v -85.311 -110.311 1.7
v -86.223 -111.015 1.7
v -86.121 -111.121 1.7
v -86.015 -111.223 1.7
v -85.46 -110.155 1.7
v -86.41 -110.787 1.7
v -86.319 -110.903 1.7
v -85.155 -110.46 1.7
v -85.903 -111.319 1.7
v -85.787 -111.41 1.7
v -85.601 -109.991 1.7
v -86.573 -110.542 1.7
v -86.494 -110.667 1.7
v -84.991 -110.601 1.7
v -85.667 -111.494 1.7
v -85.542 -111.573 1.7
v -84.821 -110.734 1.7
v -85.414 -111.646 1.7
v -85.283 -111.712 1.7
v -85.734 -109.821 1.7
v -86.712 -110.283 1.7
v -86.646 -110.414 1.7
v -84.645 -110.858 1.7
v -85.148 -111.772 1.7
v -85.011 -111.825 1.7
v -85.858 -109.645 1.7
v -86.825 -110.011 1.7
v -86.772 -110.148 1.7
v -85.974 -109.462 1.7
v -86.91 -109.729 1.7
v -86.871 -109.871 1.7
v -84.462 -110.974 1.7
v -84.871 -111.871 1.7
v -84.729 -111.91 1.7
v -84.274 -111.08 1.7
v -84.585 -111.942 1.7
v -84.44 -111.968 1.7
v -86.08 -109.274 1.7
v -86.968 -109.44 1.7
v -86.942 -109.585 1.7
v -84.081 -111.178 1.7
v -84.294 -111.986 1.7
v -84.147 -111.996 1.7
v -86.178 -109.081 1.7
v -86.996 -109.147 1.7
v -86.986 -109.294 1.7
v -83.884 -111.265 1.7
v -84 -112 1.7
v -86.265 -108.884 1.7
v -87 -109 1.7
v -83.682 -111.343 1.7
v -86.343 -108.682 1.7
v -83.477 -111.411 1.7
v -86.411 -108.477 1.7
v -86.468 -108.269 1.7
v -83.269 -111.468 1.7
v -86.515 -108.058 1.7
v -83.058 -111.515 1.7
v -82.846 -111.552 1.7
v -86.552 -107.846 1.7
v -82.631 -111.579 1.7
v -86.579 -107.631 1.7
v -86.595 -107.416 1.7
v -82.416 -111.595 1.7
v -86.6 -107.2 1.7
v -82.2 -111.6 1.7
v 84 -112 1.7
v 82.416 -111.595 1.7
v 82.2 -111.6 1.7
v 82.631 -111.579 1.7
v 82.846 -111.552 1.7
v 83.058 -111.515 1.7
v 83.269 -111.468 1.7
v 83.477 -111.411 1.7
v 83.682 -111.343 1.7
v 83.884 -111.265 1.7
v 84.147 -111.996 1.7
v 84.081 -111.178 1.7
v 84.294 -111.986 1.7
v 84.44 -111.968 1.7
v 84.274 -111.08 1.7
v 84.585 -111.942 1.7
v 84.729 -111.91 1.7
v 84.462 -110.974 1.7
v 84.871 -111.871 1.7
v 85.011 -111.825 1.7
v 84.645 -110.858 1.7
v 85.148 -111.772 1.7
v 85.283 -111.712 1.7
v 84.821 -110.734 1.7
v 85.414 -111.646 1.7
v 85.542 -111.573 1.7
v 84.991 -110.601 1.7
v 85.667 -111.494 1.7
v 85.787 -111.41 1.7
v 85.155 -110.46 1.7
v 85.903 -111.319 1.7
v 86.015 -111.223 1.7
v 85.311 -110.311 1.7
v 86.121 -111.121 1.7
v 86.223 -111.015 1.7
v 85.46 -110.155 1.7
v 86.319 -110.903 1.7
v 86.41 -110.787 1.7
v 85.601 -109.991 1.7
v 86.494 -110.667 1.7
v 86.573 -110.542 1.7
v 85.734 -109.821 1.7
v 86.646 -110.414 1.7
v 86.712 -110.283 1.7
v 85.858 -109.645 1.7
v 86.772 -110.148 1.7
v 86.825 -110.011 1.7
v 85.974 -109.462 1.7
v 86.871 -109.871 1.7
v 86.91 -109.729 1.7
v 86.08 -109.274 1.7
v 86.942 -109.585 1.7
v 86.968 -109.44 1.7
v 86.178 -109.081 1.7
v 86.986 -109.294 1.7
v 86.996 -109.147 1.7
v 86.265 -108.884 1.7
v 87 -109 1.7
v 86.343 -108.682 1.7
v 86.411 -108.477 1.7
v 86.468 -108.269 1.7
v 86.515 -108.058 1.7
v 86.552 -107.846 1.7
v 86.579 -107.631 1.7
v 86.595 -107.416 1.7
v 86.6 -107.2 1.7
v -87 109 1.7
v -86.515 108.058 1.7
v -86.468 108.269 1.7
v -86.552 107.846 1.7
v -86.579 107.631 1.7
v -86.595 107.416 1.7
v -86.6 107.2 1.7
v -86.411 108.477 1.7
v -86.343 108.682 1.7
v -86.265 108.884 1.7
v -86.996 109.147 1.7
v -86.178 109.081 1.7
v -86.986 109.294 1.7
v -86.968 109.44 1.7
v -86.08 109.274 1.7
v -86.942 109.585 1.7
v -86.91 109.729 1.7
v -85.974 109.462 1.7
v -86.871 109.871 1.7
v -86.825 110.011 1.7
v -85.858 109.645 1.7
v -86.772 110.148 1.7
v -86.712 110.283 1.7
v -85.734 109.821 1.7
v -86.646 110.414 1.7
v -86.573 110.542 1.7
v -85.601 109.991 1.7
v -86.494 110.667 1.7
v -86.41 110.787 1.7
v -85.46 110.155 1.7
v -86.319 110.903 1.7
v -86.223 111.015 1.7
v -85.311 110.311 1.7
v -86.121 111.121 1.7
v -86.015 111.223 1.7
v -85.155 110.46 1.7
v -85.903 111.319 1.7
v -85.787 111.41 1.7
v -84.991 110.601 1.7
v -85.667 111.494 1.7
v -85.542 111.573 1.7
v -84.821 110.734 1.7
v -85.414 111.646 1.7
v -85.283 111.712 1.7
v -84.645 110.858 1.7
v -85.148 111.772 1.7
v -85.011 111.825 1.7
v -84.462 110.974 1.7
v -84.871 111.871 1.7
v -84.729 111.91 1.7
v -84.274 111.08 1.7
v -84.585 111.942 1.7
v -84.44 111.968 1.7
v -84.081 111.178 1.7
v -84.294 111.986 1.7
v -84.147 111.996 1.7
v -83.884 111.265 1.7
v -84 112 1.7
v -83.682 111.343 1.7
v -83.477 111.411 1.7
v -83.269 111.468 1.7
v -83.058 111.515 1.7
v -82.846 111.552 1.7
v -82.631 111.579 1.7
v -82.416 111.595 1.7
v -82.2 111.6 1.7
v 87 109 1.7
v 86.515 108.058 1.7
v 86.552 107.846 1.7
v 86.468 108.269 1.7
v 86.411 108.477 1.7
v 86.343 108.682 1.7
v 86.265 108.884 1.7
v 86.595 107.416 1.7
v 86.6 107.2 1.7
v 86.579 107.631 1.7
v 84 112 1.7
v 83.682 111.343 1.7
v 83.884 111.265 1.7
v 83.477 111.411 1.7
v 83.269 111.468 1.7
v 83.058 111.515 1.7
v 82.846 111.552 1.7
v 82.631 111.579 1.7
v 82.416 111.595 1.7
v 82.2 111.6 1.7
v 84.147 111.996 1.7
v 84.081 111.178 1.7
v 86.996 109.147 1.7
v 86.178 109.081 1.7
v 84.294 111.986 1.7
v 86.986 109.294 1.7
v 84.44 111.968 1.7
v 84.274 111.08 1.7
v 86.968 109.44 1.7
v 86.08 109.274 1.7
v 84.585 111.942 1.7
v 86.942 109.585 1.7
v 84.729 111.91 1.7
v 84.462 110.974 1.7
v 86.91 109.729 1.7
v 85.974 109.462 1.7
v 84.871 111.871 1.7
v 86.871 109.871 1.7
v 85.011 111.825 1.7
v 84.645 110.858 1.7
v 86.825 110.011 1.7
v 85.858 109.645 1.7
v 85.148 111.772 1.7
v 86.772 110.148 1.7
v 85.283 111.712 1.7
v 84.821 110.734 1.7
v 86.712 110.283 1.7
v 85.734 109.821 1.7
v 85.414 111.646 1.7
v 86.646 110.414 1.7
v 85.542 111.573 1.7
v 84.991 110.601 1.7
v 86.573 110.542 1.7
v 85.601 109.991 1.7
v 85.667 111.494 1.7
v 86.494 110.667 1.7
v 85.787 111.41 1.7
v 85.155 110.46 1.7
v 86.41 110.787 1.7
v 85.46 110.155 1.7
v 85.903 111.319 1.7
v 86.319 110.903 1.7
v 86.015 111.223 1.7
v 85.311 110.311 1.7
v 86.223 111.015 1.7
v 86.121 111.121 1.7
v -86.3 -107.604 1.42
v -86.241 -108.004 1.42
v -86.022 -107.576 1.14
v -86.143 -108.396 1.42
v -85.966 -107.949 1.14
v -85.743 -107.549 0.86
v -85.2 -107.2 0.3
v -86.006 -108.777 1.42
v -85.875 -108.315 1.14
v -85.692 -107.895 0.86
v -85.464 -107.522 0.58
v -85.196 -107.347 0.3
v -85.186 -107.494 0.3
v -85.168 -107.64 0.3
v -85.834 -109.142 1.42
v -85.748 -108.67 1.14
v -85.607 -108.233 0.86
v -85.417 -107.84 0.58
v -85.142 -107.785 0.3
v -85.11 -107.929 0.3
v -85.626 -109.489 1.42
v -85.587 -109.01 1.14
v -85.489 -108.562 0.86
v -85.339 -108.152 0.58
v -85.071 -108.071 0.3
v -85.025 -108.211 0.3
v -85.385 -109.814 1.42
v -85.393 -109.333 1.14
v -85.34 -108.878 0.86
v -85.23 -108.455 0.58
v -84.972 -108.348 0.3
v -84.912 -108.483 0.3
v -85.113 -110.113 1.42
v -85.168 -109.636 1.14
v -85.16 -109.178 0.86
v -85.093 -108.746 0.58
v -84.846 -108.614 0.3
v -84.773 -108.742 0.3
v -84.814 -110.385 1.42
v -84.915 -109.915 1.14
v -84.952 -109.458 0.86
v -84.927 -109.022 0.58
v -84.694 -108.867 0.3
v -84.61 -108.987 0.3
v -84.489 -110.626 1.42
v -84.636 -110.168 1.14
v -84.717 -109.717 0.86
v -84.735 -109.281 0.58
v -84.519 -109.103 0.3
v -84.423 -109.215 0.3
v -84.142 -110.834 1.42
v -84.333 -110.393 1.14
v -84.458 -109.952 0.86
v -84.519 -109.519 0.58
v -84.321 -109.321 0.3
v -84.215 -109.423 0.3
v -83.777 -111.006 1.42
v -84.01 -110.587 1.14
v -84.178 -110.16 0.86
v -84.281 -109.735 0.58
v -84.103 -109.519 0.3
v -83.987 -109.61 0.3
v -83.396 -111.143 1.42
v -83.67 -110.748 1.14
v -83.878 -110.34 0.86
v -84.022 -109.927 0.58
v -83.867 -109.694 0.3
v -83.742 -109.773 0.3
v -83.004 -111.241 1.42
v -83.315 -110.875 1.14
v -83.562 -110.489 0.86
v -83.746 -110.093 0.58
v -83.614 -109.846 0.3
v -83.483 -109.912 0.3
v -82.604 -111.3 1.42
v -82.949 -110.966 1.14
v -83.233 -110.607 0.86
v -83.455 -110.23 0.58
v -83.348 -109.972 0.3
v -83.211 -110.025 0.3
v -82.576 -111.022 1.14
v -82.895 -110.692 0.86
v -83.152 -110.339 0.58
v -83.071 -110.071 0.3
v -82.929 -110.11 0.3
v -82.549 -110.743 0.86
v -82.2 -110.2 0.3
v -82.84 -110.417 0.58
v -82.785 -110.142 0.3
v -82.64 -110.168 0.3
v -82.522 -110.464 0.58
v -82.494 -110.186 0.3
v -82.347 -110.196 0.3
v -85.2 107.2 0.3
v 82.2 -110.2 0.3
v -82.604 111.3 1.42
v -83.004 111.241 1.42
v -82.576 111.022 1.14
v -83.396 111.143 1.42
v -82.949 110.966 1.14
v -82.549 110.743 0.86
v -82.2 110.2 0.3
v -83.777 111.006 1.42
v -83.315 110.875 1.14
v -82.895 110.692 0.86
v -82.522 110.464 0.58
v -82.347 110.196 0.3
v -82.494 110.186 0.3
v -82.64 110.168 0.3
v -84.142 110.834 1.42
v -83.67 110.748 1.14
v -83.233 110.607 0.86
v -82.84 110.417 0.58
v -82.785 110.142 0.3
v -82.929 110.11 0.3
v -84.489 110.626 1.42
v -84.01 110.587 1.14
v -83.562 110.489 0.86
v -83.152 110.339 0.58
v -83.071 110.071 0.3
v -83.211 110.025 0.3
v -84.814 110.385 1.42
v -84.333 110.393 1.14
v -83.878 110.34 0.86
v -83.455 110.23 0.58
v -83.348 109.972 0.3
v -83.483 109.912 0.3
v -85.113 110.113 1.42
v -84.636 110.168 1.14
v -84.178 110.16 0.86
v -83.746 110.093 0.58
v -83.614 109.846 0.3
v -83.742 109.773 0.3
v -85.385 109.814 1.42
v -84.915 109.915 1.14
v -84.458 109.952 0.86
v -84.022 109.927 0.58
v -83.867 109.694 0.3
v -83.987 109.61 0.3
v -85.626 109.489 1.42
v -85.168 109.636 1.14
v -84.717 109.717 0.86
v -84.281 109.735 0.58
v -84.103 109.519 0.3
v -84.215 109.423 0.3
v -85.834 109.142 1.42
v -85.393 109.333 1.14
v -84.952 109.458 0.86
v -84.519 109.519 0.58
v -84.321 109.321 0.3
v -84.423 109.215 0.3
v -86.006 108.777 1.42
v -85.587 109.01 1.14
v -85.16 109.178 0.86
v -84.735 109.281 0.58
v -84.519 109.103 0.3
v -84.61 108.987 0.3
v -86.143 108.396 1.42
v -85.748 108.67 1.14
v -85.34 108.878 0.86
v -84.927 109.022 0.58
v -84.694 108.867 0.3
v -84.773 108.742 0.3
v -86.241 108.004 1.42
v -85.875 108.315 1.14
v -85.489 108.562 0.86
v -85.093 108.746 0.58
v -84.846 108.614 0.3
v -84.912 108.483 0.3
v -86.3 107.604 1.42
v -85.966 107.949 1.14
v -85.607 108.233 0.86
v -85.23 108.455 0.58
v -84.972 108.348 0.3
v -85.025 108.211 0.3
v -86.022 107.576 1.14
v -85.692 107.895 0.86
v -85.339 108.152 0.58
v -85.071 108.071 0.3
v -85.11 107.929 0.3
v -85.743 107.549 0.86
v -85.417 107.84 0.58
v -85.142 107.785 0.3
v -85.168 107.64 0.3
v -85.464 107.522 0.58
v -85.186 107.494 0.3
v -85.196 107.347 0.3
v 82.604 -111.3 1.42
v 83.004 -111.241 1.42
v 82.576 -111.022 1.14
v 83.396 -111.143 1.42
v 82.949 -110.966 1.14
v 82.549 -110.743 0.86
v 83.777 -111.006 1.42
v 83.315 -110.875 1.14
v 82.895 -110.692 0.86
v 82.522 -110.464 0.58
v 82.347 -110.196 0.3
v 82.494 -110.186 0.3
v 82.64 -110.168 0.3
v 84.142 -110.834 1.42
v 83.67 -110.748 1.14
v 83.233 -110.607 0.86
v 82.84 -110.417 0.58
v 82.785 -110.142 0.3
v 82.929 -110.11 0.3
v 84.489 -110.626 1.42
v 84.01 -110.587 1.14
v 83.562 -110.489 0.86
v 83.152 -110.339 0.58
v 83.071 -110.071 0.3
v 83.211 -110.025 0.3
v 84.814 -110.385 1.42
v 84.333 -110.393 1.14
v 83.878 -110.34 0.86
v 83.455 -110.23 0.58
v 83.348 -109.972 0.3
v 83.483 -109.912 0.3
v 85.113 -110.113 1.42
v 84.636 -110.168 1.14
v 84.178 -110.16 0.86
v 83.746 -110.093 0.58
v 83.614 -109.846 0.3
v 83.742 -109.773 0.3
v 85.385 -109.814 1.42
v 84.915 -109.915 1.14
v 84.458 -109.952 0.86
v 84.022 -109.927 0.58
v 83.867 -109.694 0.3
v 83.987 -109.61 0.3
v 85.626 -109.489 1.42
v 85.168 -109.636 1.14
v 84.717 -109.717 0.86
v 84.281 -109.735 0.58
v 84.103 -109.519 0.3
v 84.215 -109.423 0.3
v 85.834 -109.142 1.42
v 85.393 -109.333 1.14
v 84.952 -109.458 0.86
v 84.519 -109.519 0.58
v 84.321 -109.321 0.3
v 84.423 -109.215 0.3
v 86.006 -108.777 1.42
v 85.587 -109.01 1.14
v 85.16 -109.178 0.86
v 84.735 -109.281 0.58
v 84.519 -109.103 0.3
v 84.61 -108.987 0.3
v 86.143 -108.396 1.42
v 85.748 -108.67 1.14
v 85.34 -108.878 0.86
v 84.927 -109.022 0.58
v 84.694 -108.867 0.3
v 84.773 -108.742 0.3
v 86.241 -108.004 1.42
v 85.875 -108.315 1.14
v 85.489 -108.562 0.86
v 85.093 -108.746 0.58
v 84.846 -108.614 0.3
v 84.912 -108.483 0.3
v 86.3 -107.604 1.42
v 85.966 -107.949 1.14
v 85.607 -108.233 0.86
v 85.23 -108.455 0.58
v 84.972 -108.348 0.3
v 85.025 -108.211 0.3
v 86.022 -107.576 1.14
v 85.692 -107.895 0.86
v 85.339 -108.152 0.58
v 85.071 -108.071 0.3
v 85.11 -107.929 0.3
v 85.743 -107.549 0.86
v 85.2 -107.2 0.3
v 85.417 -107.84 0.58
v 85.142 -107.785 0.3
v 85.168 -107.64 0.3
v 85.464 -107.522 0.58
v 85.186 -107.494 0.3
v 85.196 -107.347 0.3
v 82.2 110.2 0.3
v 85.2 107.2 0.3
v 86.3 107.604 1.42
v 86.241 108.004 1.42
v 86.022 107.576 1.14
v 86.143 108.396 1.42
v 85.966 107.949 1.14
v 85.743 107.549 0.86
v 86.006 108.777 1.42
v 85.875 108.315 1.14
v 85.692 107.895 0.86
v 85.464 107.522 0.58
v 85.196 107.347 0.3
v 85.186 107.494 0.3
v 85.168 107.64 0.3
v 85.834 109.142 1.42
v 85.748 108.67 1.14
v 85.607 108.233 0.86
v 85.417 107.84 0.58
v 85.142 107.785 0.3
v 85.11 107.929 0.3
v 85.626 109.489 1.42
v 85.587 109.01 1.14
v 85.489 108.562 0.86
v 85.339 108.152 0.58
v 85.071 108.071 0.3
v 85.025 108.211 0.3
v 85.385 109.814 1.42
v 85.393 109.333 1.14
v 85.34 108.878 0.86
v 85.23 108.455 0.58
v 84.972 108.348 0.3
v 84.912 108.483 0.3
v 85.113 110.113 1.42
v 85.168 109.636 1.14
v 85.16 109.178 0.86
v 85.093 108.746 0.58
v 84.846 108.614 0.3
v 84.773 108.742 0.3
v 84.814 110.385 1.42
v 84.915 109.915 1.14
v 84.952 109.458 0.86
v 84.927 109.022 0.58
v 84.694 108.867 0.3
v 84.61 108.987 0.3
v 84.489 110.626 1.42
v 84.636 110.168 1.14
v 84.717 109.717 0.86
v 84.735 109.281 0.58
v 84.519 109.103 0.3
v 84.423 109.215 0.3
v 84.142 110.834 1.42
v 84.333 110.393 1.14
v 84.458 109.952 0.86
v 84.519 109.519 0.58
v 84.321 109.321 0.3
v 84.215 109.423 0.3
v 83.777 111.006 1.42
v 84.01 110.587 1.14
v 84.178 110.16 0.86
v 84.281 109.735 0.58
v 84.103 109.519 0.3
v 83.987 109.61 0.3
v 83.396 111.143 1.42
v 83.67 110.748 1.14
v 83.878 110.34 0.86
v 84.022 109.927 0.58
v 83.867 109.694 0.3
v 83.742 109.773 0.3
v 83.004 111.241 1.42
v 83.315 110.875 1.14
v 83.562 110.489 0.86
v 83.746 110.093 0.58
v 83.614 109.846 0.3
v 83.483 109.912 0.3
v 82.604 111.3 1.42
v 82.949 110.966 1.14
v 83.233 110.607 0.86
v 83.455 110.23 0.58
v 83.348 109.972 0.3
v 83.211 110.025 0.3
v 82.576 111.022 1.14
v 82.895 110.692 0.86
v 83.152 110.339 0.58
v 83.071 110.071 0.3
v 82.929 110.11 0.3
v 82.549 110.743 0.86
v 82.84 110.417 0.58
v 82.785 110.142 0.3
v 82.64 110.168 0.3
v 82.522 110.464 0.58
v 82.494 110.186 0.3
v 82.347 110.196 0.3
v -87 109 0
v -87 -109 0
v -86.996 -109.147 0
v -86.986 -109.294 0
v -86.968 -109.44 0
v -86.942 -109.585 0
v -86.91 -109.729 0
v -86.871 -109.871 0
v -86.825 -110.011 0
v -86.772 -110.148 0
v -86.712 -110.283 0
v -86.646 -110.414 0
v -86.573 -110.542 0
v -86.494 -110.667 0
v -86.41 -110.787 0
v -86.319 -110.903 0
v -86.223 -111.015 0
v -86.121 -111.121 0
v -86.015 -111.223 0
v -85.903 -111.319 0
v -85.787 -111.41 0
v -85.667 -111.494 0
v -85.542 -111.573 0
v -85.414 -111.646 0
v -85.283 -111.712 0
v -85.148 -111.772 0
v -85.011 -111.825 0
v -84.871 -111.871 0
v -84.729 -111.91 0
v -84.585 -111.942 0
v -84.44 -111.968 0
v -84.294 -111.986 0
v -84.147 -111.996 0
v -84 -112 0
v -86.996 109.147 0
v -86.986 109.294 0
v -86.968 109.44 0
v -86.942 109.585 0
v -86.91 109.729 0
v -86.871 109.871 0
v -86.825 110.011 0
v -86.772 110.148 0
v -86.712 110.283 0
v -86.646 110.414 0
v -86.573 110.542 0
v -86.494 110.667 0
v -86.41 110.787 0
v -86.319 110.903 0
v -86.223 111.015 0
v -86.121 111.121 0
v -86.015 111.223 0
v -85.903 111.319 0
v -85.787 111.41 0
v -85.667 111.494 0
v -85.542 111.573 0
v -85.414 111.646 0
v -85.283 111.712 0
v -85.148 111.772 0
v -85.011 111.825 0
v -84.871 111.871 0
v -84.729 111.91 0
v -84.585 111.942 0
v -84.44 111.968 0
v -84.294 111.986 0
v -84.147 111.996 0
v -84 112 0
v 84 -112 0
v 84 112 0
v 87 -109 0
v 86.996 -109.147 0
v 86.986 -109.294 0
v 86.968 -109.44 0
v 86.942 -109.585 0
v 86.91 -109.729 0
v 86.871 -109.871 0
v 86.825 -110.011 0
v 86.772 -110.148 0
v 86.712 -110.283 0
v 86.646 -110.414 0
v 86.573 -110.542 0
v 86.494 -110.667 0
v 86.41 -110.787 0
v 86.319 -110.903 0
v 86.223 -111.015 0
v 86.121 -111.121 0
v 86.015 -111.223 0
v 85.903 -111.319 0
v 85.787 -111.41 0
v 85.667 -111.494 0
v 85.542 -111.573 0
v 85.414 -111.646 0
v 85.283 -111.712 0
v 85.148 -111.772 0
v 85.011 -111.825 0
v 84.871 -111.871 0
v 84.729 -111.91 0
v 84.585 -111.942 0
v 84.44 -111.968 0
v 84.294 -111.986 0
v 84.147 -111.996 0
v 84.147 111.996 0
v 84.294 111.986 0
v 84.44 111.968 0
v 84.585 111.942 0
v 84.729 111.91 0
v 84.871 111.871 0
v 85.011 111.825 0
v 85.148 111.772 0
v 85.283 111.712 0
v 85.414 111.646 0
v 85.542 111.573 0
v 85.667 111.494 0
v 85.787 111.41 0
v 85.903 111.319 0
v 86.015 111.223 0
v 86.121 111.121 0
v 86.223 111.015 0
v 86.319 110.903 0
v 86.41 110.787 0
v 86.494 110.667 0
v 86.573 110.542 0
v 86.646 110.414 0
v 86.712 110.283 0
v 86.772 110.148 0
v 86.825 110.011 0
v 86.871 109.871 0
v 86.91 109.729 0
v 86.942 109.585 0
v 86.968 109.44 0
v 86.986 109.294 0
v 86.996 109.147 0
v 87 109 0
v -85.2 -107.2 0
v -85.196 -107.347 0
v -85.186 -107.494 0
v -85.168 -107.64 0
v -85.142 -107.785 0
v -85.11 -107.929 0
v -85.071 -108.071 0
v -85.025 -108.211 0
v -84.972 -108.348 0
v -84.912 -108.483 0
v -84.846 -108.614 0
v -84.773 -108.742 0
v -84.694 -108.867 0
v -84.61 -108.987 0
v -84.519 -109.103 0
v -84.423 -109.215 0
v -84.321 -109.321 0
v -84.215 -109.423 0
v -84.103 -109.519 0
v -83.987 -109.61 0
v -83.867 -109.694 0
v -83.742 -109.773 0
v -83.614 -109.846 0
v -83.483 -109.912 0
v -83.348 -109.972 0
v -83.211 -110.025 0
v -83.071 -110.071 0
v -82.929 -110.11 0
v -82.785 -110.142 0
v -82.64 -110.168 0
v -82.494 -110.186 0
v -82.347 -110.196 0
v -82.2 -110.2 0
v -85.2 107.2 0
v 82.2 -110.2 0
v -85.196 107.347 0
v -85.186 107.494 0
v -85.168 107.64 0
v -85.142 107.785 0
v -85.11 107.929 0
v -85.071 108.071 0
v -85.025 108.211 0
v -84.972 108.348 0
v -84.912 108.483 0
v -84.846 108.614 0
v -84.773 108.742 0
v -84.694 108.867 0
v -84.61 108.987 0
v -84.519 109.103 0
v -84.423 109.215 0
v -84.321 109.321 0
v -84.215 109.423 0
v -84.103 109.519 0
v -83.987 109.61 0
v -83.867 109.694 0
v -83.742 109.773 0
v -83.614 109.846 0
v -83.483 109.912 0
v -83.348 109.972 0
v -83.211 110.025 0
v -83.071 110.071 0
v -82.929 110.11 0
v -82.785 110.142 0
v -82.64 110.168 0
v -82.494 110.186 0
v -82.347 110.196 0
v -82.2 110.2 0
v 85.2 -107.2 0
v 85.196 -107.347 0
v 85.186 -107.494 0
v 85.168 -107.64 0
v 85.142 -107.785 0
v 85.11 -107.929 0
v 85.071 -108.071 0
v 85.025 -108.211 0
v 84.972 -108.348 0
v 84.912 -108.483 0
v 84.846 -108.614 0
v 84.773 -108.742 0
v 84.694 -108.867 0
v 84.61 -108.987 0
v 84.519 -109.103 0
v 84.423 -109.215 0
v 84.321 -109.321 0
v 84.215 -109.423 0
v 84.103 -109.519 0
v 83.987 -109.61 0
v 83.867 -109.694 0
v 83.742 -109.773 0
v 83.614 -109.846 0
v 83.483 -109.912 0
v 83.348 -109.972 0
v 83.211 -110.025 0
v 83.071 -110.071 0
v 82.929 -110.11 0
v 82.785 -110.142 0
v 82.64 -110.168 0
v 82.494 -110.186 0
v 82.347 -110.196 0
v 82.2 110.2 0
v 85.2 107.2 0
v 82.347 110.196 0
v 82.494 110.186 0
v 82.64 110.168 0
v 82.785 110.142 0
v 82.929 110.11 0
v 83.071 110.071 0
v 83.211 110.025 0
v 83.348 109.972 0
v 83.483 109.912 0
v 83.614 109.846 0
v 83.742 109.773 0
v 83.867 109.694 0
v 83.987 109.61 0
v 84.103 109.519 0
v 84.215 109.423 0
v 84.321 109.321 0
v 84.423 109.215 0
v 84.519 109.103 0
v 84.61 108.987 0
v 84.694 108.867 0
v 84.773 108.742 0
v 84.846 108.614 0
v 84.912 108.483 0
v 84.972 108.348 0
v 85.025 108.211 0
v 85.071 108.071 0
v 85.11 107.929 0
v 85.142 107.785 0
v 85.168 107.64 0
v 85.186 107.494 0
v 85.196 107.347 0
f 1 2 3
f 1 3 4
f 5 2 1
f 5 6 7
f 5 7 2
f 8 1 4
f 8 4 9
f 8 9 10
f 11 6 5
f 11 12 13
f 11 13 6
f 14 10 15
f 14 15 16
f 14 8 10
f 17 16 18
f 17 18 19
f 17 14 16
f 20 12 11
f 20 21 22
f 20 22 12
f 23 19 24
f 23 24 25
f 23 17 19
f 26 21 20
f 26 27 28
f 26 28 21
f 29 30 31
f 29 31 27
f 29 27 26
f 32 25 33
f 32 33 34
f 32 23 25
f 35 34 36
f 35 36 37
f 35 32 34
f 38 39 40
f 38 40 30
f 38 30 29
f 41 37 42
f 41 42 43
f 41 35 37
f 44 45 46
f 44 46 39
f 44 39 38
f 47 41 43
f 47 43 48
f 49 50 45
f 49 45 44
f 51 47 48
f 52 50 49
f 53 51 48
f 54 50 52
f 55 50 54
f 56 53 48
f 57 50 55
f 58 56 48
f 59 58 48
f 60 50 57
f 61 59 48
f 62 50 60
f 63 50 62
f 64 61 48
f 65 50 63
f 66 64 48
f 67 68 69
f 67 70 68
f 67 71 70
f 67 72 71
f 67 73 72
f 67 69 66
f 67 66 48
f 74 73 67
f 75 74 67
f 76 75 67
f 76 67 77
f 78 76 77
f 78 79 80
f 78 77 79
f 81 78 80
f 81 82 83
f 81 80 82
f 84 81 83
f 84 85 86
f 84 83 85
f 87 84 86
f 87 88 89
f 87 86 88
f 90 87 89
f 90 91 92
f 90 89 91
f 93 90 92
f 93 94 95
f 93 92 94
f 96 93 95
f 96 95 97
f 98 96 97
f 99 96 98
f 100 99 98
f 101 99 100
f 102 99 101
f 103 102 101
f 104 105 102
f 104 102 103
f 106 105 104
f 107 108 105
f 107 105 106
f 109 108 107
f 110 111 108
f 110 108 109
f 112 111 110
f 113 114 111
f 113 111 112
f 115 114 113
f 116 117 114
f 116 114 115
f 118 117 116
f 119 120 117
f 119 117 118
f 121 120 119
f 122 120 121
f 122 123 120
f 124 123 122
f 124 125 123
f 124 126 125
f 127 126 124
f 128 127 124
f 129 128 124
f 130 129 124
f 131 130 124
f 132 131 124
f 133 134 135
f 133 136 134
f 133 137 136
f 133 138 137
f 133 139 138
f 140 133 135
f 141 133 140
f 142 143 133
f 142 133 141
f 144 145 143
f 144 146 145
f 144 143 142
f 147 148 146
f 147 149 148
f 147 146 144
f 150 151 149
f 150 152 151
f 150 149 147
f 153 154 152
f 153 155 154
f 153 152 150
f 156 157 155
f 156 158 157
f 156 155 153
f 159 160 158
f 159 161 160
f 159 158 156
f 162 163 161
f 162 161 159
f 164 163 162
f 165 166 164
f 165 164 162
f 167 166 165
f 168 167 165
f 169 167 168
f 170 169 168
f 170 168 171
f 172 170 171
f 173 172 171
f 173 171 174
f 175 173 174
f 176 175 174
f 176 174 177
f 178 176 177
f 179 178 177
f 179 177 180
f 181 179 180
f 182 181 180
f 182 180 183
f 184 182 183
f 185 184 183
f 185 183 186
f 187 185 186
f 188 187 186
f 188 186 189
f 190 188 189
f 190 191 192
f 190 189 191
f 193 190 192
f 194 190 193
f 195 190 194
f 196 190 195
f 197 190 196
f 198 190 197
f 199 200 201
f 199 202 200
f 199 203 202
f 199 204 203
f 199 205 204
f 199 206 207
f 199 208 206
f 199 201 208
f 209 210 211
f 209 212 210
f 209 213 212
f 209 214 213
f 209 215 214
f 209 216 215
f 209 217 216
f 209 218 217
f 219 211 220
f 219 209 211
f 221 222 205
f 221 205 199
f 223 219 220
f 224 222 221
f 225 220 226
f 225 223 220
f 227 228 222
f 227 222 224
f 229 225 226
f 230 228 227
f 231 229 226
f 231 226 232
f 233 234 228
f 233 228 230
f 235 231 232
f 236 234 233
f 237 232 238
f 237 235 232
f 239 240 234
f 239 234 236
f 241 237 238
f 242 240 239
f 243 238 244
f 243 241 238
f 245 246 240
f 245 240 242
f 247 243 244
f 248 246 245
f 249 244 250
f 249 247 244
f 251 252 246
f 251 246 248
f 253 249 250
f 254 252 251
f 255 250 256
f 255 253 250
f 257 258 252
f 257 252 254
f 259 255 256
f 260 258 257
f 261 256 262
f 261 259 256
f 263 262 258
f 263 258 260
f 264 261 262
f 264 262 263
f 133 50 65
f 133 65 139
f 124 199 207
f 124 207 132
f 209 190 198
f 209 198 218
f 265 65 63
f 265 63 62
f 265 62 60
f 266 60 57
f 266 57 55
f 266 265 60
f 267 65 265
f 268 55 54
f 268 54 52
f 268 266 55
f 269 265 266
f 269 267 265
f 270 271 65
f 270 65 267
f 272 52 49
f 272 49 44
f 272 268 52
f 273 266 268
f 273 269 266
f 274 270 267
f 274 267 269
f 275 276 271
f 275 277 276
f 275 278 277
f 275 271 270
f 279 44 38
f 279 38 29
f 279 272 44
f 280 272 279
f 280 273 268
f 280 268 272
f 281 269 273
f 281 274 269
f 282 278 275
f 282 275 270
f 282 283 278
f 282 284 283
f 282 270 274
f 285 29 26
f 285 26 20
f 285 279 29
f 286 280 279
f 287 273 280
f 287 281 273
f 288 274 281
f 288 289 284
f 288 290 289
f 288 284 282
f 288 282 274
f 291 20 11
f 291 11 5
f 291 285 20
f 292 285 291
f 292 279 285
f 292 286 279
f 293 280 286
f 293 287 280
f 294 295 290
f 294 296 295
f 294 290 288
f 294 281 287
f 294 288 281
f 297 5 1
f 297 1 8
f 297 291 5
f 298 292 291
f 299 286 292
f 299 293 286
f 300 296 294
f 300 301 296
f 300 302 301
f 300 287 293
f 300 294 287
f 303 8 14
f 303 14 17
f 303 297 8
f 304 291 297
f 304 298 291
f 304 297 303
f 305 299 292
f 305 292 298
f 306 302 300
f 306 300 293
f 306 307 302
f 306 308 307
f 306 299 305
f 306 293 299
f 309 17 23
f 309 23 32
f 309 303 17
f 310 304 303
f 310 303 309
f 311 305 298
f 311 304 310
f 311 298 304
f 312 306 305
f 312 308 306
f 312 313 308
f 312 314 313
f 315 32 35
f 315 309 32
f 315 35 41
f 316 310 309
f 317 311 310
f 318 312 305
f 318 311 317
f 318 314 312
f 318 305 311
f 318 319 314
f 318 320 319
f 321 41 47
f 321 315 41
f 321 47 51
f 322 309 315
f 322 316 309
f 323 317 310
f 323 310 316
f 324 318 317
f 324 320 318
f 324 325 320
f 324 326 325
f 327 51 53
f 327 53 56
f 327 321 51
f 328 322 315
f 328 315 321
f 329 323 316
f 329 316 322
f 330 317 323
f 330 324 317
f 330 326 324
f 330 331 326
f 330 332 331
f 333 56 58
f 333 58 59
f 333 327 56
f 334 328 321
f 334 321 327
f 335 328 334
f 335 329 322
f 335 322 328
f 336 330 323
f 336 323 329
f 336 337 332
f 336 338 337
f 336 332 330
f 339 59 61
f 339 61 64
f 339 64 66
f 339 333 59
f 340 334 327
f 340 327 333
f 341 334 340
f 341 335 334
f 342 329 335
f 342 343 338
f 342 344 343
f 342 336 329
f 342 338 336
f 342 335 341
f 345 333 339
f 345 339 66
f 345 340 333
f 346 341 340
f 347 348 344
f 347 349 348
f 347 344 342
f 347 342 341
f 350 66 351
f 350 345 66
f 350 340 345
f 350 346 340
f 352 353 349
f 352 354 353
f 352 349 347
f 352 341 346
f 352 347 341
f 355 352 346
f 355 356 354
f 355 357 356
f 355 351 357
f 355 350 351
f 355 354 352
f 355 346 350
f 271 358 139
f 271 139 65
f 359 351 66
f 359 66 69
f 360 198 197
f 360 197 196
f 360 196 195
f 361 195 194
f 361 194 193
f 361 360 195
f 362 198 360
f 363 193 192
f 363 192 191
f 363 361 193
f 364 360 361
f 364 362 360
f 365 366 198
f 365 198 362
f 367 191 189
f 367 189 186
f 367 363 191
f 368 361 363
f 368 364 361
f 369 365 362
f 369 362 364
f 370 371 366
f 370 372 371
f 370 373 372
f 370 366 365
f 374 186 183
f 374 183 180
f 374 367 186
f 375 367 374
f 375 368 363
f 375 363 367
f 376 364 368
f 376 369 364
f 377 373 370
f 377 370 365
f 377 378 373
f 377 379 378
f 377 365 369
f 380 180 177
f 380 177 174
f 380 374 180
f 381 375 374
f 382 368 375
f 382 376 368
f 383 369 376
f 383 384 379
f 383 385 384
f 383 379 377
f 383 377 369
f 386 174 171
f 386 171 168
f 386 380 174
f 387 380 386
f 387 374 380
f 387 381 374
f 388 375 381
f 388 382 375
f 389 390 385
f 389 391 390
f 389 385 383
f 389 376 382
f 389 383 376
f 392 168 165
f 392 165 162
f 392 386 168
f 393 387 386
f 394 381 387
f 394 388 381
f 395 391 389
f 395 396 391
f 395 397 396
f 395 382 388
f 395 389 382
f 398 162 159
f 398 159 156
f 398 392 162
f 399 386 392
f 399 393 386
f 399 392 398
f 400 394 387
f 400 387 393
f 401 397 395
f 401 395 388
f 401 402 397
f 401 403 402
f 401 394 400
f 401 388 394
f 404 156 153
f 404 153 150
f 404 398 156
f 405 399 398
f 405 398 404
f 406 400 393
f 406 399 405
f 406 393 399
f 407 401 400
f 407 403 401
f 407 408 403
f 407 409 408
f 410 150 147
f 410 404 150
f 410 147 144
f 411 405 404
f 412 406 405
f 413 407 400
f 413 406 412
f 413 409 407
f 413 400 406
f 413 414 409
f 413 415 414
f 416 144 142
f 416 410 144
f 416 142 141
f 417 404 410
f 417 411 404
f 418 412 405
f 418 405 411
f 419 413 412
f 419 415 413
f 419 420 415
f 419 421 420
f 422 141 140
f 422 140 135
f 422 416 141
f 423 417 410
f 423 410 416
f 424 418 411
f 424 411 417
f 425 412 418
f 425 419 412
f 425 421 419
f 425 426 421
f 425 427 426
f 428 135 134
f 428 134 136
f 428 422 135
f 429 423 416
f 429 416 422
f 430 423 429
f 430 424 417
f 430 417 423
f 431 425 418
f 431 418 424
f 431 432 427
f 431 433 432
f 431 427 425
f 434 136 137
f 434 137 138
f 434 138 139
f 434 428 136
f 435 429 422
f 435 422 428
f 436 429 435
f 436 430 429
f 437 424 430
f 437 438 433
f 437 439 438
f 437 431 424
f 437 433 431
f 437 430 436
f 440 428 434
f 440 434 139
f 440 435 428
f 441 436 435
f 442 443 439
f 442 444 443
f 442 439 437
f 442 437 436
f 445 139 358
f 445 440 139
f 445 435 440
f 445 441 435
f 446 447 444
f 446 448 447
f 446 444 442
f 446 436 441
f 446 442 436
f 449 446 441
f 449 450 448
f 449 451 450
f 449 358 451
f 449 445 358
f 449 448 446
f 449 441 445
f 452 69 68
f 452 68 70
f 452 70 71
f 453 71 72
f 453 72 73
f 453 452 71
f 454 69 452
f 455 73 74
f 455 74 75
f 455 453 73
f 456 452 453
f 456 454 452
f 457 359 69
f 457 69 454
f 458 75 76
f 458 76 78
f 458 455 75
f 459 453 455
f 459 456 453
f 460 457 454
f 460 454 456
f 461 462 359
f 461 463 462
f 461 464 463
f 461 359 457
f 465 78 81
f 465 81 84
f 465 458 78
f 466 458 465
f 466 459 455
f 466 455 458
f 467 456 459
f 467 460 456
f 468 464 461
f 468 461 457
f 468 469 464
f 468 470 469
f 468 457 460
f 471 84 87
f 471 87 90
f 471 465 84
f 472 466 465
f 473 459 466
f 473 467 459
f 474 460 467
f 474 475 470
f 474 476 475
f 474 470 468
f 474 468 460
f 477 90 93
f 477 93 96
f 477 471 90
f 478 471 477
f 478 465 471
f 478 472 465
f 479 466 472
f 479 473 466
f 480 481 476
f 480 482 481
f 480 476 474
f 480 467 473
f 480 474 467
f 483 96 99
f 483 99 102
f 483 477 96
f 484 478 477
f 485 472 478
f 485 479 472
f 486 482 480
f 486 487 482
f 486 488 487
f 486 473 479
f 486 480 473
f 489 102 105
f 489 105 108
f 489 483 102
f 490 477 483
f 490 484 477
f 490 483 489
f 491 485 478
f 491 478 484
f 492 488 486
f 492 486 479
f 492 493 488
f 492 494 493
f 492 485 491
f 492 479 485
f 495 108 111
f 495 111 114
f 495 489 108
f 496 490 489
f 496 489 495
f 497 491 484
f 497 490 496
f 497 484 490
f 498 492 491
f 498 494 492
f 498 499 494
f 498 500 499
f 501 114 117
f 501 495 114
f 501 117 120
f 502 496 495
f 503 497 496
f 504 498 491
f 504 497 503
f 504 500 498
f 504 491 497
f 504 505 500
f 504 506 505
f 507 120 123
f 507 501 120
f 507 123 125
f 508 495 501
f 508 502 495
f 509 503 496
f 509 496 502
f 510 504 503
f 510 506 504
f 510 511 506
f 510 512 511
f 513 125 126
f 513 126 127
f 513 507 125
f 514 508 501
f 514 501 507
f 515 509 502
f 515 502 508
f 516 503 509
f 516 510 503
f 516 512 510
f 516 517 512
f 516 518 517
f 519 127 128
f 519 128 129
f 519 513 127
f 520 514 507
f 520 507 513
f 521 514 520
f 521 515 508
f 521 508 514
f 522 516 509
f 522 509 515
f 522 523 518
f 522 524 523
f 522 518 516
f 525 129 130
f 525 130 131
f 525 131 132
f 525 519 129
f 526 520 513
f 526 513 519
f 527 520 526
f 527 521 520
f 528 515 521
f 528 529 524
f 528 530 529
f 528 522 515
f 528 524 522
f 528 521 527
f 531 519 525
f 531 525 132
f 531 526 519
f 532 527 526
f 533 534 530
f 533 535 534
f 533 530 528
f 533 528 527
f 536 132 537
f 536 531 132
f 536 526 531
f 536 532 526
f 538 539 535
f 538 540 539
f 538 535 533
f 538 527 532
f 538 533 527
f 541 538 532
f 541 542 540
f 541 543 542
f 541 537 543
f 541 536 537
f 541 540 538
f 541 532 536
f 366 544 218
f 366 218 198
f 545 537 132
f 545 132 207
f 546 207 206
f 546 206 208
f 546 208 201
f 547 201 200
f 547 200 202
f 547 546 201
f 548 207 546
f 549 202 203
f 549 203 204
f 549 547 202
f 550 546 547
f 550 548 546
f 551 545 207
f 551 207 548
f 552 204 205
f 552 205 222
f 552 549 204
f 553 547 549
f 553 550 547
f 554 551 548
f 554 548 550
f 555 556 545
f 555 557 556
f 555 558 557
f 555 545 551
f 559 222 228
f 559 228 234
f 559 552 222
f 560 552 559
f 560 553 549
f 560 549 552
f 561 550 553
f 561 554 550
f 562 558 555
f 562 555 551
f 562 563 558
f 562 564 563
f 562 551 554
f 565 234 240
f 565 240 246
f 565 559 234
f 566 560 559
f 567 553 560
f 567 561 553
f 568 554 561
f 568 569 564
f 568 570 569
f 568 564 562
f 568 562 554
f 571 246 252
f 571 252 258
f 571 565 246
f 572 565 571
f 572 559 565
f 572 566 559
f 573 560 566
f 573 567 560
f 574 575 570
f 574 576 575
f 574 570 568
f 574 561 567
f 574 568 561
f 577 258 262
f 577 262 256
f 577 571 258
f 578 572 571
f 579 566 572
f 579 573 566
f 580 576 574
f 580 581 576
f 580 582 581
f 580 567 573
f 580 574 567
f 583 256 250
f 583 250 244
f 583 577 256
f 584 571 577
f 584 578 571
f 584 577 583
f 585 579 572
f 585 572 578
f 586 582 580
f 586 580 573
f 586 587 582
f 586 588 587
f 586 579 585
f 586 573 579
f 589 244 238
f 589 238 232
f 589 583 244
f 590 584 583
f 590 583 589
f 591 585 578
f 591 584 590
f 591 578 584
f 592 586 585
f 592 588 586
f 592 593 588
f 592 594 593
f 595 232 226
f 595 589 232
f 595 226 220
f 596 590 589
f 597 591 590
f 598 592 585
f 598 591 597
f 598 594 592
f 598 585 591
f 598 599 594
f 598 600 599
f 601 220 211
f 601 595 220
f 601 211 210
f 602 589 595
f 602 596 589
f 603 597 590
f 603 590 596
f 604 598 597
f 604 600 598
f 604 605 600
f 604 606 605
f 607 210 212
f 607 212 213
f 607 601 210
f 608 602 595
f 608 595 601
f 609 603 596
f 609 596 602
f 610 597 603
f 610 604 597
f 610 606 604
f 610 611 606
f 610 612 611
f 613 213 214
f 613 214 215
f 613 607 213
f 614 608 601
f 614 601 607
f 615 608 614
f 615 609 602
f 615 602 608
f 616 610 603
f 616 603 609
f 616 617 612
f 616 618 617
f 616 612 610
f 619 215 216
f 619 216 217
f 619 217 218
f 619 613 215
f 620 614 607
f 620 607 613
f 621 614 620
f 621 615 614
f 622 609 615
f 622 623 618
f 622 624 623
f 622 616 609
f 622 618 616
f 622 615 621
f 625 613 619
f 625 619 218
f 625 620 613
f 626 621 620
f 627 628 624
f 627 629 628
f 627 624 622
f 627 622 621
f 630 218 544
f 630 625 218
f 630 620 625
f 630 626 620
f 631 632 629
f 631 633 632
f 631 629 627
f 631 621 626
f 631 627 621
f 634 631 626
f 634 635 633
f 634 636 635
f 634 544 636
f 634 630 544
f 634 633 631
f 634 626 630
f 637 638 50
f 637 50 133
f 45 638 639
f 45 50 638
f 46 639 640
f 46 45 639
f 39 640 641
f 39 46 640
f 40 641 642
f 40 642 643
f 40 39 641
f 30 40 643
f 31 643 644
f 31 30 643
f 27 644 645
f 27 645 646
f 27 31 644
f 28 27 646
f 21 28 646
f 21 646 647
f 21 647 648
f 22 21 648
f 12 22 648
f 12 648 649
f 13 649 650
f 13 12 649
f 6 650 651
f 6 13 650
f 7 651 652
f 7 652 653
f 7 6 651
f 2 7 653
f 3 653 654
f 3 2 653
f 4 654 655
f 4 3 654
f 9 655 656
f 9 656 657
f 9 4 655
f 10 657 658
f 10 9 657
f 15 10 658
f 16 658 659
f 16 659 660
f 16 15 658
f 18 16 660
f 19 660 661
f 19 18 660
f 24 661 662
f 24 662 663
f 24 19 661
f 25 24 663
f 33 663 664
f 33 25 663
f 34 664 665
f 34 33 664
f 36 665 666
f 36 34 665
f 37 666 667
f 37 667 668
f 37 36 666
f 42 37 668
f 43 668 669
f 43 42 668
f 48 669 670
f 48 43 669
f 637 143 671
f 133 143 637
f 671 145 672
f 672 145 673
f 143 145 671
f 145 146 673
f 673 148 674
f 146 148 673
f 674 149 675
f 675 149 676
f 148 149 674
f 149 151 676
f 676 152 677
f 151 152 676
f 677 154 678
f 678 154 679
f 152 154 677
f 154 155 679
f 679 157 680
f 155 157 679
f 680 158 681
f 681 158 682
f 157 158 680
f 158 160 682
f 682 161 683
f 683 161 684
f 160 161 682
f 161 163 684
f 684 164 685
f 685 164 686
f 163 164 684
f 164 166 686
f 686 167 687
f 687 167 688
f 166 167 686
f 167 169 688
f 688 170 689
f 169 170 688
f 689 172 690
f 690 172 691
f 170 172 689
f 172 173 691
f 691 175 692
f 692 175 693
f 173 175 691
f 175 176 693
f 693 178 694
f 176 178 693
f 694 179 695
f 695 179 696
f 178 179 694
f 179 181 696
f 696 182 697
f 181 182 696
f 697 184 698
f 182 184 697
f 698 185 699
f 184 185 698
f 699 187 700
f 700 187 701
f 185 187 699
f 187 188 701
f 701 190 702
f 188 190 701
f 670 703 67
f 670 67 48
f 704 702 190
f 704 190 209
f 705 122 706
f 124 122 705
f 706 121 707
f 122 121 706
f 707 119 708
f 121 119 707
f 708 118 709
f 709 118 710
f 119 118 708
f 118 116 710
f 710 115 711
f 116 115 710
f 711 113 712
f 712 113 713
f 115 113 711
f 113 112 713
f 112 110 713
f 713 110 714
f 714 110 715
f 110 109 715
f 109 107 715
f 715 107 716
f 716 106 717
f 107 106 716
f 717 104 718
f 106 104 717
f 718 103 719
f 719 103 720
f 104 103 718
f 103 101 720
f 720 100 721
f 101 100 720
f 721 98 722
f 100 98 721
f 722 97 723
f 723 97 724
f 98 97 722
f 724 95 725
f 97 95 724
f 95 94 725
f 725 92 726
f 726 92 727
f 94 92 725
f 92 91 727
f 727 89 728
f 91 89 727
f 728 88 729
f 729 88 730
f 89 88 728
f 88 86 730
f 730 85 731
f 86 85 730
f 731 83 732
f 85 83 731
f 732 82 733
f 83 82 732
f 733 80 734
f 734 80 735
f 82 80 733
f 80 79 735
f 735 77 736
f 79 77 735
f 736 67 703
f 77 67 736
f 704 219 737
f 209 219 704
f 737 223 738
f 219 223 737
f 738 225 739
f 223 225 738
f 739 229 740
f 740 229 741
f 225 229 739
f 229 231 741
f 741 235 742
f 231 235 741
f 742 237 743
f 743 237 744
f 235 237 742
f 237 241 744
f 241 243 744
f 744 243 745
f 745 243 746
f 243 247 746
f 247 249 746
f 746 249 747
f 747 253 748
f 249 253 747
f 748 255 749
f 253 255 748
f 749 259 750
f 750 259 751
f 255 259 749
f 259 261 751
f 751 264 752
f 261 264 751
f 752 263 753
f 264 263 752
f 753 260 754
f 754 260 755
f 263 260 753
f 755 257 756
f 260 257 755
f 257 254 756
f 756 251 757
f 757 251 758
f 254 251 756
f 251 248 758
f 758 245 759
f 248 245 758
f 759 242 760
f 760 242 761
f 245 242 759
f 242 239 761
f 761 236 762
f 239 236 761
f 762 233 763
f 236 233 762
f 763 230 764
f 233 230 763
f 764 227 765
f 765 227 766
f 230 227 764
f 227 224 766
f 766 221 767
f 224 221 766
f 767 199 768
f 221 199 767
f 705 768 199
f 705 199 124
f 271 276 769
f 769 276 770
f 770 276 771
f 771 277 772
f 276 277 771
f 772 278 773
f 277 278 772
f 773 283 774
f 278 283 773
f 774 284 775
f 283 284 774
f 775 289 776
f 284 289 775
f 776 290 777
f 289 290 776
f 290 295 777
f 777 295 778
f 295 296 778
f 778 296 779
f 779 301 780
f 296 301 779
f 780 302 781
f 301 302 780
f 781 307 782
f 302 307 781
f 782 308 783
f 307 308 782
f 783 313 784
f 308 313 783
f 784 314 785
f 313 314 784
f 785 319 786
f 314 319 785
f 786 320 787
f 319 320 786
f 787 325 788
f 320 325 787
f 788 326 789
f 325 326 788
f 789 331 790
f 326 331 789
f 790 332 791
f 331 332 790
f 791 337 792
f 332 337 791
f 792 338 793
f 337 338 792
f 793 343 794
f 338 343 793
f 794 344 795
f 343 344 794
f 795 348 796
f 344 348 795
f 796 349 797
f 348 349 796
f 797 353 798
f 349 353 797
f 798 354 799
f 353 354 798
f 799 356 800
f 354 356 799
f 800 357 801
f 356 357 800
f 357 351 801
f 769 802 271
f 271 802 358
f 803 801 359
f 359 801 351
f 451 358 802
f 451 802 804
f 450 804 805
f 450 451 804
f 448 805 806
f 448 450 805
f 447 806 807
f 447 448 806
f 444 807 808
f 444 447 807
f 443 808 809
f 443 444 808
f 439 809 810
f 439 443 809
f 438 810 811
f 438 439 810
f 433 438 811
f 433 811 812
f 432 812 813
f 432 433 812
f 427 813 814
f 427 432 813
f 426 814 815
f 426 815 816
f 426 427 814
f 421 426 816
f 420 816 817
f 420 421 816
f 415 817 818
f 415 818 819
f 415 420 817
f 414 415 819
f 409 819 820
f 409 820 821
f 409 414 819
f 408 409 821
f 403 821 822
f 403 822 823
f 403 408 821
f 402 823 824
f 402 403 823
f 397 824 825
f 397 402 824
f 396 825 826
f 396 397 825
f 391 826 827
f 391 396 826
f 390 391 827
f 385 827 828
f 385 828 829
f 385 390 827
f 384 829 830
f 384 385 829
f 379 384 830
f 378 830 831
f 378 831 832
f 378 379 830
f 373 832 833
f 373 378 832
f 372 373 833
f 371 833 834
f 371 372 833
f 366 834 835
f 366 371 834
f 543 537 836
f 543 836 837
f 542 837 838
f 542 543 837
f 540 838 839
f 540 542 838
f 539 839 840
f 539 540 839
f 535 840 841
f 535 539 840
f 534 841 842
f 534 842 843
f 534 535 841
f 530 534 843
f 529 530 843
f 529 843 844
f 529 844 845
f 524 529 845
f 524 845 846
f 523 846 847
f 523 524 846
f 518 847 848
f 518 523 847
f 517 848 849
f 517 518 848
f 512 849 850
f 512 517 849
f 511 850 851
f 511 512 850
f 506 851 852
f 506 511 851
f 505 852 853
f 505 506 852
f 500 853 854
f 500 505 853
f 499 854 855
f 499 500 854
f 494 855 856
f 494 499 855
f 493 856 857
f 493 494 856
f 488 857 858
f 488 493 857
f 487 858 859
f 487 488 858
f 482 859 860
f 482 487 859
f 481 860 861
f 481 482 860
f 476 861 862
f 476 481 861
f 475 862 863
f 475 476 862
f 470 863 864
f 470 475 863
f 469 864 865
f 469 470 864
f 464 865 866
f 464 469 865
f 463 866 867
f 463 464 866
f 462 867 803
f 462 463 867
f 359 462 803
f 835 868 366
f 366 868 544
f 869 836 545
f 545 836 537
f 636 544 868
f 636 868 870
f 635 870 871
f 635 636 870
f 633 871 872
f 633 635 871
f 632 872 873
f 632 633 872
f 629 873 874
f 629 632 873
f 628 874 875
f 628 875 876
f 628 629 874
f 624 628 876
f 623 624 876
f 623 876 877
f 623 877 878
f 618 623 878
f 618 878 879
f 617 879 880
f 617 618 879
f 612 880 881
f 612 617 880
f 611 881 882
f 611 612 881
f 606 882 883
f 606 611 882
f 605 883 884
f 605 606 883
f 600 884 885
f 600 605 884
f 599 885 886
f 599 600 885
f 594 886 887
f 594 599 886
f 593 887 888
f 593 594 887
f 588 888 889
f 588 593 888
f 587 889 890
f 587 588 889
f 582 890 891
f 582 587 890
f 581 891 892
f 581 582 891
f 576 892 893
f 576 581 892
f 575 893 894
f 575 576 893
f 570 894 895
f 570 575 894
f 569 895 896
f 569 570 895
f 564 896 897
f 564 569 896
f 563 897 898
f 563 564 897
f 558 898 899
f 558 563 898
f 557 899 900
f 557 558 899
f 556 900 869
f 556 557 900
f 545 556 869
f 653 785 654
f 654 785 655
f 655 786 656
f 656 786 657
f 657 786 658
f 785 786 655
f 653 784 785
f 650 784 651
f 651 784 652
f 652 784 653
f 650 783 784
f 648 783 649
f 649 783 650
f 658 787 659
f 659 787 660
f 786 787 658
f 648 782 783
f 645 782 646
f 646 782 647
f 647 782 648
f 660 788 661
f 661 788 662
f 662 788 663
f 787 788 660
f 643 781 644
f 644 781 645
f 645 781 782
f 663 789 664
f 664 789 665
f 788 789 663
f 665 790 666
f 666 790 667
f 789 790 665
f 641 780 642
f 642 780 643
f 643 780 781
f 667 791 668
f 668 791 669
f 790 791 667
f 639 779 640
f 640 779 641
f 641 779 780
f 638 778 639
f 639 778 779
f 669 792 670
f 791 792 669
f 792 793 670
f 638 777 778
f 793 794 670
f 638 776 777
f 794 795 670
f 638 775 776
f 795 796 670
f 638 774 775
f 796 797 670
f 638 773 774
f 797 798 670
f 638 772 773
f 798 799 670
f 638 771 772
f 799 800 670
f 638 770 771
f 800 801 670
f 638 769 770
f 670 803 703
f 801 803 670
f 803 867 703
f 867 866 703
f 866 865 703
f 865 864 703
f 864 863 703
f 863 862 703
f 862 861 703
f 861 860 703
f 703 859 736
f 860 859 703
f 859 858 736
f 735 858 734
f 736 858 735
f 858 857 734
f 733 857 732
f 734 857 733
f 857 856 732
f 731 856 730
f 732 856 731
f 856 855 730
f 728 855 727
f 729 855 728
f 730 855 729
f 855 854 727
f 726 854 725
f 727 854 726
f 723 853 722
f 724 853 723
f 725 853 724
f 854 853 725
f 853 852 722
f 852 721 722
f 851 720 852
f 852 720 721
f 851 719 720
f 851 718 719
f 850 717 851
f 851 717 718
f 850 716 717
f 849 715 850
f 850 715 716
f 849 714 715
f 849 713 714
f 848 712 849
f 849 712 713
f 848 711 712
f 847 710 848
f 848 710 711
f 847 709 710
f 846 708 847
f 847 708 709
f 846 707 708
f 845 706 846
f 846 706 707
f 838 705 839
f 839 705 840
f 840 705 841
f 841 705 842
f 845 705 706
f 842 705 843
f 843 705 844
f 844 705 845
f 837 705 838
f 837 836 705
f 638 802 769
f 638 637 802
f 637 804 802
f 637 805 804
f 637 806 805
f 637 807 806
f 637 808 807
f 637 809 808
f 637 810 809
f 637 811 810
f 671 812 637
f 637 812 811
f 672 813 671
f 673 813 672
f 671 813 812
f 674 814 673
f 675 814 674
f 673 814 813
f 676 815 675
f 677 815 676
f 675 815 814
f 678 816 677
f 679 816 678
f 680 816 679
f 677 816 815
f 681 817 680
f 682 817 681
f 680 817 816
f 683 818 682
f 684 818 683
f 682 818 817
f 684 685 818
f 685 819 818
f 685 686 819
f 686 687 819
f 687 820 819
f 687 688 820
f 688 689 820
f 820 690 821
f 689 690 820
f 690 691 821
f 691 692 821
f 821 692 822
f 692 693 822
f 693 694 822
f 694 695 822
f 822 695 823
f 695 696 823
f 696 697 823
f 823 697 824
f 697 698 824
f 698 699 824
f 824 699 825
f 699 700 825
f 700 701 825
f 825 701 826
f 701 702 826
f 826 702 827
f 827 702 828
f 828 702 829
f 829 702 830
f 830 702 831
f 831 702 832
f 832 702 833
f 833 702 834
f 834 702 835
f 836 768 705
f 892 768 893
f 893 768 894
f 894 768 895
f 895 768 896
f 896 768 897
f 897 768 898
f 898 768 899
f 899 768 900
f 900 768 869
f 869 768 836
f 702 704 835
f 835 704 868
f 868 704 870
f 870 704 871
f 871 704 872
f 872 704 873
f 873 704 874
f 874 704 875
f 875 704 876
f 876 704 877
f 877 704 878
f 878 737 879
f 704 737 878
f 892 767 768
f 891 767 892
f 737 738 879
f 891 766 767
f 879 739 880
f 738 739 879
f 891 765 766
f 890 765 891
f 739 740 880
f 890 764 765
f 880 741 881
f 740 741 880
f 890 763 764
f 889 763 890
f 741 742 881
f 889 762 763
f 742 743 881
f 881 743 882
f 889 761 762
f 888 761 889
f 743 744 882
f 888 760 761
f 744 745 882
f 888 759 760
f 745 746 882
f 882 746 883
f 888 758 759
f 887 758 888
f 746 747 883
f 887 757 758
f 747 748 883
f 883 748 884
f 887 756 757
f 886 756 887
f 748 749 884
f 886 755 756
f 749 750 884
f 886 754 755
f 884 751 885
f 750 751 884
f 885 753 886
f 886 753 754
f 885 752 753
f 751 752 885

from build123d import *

# Parameters (mm, degrees)
SKETCH_W     = 174
SKETCH_H     = 224
SKETCH_W_2   = 170.4
SKETCH_H_2   = 220.4
PAD_DEPTH    = 1.7
FILLET_R     = 3
CHAMFER_SIZE = 1.4


with BuildPart() as part:
    # Sketch → Pad (new body)
    with BuildSketch(Plane.XY):
        Rectangle(SKETCH_W, SKETCH_H)
        Rectangle(SKETCH_W_2, SKETCH_H_2, mode=Mode.SUBTRACT)
    extrude(amount=PAD_DEPTH)

    # Fillet
    fillet_edges = [part.edges().sort_by_distance(p)[0] for p in [
        (-85.2, -110.2, 0.85),
        (-87, -112, 0.85),
        (87, -112, 0.85),
        (85.2, -110.2, 0.85),
        (87, 112, 0.85),
        (85.2, 110.2, 0.85),
        (-85.2, 110.2, 0.85),
        (-87, 112, 0.85),
    ]]
    fillet(fillet_edges, radius=FILLET_R)

    # Chamfer
    chamfer_edges = [part.edges().sort_by_distance(p)[0] for p in [
        (-84.32132, -109.32132, 1.7),
    ]]
    chamfer(chamfer_edges, length=CHAMFER_SIZE)


solid = part.part
